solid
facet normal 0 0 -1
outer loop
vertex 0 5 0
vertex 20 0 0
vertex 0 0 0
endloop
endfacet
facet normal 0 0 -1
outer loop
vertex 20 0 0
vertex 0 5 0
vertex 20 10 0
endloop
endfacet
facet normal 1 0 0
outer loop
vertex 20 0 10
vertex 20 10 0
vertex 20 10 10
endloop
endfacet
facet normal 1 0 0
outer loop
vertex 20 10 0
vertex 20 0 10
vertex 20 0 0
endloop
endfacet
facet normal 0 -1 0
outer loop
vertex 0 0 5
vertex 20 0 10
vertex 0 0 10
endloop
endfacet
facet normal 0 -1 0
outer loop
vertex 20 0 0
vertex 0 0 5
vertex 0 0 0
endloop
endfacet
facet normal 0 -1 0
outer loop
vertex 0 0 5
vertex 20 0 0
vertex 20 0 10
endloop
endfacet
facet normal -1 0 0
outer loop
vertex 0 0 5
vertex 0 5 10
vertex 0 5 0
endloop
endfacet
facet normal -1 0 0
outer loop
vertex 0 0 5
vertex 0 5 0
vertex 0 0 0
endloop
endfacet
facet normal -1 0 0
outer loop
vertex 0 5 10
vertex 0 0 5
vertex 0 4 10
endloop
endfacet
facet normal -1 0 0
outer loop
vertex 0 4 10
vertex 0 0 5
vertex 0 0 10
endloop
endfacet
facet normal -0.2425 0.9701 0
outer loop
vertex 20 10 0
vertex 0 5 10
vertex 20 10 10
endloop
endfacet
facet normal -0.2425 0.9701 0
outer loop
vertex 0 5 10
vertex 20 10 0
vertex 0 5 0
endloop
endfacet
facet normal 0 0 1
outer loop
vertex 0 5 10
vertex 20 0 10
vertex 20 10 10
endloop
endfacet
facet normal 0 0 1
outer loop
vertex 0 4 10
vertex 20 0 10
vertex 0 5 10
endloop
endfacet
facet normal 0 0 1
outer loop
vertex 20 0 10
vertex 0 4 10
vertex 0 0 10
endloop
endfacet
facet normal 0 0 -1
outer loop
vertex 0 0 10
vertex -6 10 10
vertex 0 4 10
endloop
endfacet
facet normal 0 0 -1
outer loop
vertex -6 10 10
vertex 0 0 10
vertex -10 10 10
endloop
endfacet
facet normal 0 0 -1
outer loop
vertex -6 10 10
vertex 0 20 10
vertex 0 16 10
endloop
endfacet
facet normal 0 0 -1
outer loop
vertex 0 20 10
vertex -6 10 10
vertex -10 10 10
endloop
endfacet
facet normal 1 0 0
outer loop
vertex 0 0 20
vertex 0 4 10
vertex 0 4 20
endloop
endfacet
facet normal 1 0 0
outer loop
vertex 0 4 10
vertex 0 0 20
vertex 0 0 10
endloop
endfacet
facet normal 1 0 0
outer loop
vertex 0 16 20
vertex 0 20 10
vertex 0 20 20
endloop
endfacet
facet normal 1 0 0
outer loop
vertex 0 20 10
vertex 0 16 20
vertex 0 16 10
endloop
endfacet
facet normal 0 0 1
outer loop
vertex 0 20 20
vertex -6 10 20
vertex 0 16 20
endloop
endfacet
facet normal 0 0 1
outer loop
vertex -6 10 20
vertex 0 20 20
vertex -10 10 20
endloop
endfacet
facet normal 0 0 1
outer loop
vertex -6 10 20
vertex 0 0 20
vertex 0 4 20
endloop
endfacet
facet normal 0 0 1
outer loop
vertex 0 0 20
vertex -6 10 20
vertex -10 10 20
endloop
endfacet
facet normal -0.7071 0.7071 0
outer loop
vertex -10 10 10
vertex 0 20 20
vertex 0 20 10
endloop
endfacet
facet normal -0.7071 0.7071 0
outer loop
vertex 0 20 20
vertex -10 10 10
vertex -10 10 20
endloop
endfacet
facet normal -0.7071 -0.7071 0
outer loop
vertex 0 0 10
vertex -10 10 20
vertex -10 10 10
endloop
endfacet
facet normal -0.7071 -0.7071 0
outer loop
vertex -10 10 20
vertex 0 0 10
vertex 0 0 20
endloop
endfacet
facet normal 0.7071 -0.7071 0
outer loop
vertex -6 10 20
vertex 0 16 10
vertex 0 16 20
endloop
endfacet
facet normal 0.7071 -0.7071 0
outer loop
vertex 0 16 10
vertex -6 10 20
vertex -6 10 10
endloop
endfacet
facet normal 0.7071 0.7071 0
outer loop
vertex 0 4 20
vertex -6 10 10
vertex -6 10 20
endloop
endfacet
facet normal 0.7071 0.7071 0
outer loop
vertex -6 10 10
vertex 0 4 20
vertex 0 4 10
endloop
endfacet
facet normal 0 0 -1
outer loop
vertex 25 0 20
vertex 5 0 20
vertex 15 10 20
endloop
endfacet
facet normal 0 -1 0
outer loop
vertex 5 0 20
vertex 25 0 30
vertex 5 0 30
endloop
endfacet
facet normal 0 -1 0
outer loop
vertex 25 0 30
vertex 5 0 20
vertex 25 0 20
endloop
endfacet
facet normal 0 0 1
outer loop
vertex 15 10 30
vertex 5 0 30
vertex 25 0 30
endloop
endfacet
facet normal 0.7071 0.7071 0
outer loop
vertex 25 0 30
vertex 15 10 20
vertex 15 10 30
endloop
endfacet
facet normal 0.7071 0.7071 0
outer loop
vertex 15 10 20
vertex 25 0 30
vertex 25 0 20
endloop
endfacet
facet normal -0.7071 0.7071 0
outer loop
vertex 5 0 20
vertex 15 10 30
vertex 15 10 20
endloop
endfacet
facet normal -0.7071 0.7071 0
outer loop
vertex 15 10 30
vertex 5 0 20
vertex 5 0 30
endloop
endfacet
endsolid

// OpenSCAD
// Define the wedge block
module wedge_block() {
    difference() {
        // Base block
        linear_extrude(height = 10)
            polygon(points = [[0, 0], [20, 0], [20, 10], [0, 5]]);
        // Cutout to create the slanted top
        translate([0, 0, 5])
            rotate([0, 0, 180]) // Adjust rotation to match original model
            linear_extrude(height = 10)
                polygon(points = [[0, 0], [20, 0], [20, 10]]);
    }
}

// Define the hollow triangular prism
module hollow_triangular_prism() {
    difference() {
        // Outer triangular prism
        linear_extrude(height = 10)
            rotate([0, 0, 90]) // Adjust rotation to match original model
            polygon(points = [[0, 0], [20, 0], [10, 10]]);
        // Inner triangular cutout
        translate([2, 2, 0])
            rotate([0, 0, 90]) // Adjust rotation to match original model
            linear_extrude(height = 10)
                polygon(points = [[0, 0], [16, 0], [8, 8]]);
    }
}

// Define the solid triangular prism
module solid_triangular_prism() {
    translate([5, 0, 0]) // Adjust position to match original model
    linear_extrude(height = 10)
        polygon(points = [[0, 0], [20, 0], [10, 10]]);
}

// Assemble the model
module flexible_coupling() {
    // Layer 3: Wedge block
    translate([0, 0, 0])
        wedge_block();
    // Layer 2: Hollow triangular prism
    translate([0, 0, 10])
        hollow_triangular_prism();
    // Layer 1: Solid triangular prism
    translate([0, 0, 20])
        solid_triangular_prism();
}

// Render the model
flexible_coupling();
